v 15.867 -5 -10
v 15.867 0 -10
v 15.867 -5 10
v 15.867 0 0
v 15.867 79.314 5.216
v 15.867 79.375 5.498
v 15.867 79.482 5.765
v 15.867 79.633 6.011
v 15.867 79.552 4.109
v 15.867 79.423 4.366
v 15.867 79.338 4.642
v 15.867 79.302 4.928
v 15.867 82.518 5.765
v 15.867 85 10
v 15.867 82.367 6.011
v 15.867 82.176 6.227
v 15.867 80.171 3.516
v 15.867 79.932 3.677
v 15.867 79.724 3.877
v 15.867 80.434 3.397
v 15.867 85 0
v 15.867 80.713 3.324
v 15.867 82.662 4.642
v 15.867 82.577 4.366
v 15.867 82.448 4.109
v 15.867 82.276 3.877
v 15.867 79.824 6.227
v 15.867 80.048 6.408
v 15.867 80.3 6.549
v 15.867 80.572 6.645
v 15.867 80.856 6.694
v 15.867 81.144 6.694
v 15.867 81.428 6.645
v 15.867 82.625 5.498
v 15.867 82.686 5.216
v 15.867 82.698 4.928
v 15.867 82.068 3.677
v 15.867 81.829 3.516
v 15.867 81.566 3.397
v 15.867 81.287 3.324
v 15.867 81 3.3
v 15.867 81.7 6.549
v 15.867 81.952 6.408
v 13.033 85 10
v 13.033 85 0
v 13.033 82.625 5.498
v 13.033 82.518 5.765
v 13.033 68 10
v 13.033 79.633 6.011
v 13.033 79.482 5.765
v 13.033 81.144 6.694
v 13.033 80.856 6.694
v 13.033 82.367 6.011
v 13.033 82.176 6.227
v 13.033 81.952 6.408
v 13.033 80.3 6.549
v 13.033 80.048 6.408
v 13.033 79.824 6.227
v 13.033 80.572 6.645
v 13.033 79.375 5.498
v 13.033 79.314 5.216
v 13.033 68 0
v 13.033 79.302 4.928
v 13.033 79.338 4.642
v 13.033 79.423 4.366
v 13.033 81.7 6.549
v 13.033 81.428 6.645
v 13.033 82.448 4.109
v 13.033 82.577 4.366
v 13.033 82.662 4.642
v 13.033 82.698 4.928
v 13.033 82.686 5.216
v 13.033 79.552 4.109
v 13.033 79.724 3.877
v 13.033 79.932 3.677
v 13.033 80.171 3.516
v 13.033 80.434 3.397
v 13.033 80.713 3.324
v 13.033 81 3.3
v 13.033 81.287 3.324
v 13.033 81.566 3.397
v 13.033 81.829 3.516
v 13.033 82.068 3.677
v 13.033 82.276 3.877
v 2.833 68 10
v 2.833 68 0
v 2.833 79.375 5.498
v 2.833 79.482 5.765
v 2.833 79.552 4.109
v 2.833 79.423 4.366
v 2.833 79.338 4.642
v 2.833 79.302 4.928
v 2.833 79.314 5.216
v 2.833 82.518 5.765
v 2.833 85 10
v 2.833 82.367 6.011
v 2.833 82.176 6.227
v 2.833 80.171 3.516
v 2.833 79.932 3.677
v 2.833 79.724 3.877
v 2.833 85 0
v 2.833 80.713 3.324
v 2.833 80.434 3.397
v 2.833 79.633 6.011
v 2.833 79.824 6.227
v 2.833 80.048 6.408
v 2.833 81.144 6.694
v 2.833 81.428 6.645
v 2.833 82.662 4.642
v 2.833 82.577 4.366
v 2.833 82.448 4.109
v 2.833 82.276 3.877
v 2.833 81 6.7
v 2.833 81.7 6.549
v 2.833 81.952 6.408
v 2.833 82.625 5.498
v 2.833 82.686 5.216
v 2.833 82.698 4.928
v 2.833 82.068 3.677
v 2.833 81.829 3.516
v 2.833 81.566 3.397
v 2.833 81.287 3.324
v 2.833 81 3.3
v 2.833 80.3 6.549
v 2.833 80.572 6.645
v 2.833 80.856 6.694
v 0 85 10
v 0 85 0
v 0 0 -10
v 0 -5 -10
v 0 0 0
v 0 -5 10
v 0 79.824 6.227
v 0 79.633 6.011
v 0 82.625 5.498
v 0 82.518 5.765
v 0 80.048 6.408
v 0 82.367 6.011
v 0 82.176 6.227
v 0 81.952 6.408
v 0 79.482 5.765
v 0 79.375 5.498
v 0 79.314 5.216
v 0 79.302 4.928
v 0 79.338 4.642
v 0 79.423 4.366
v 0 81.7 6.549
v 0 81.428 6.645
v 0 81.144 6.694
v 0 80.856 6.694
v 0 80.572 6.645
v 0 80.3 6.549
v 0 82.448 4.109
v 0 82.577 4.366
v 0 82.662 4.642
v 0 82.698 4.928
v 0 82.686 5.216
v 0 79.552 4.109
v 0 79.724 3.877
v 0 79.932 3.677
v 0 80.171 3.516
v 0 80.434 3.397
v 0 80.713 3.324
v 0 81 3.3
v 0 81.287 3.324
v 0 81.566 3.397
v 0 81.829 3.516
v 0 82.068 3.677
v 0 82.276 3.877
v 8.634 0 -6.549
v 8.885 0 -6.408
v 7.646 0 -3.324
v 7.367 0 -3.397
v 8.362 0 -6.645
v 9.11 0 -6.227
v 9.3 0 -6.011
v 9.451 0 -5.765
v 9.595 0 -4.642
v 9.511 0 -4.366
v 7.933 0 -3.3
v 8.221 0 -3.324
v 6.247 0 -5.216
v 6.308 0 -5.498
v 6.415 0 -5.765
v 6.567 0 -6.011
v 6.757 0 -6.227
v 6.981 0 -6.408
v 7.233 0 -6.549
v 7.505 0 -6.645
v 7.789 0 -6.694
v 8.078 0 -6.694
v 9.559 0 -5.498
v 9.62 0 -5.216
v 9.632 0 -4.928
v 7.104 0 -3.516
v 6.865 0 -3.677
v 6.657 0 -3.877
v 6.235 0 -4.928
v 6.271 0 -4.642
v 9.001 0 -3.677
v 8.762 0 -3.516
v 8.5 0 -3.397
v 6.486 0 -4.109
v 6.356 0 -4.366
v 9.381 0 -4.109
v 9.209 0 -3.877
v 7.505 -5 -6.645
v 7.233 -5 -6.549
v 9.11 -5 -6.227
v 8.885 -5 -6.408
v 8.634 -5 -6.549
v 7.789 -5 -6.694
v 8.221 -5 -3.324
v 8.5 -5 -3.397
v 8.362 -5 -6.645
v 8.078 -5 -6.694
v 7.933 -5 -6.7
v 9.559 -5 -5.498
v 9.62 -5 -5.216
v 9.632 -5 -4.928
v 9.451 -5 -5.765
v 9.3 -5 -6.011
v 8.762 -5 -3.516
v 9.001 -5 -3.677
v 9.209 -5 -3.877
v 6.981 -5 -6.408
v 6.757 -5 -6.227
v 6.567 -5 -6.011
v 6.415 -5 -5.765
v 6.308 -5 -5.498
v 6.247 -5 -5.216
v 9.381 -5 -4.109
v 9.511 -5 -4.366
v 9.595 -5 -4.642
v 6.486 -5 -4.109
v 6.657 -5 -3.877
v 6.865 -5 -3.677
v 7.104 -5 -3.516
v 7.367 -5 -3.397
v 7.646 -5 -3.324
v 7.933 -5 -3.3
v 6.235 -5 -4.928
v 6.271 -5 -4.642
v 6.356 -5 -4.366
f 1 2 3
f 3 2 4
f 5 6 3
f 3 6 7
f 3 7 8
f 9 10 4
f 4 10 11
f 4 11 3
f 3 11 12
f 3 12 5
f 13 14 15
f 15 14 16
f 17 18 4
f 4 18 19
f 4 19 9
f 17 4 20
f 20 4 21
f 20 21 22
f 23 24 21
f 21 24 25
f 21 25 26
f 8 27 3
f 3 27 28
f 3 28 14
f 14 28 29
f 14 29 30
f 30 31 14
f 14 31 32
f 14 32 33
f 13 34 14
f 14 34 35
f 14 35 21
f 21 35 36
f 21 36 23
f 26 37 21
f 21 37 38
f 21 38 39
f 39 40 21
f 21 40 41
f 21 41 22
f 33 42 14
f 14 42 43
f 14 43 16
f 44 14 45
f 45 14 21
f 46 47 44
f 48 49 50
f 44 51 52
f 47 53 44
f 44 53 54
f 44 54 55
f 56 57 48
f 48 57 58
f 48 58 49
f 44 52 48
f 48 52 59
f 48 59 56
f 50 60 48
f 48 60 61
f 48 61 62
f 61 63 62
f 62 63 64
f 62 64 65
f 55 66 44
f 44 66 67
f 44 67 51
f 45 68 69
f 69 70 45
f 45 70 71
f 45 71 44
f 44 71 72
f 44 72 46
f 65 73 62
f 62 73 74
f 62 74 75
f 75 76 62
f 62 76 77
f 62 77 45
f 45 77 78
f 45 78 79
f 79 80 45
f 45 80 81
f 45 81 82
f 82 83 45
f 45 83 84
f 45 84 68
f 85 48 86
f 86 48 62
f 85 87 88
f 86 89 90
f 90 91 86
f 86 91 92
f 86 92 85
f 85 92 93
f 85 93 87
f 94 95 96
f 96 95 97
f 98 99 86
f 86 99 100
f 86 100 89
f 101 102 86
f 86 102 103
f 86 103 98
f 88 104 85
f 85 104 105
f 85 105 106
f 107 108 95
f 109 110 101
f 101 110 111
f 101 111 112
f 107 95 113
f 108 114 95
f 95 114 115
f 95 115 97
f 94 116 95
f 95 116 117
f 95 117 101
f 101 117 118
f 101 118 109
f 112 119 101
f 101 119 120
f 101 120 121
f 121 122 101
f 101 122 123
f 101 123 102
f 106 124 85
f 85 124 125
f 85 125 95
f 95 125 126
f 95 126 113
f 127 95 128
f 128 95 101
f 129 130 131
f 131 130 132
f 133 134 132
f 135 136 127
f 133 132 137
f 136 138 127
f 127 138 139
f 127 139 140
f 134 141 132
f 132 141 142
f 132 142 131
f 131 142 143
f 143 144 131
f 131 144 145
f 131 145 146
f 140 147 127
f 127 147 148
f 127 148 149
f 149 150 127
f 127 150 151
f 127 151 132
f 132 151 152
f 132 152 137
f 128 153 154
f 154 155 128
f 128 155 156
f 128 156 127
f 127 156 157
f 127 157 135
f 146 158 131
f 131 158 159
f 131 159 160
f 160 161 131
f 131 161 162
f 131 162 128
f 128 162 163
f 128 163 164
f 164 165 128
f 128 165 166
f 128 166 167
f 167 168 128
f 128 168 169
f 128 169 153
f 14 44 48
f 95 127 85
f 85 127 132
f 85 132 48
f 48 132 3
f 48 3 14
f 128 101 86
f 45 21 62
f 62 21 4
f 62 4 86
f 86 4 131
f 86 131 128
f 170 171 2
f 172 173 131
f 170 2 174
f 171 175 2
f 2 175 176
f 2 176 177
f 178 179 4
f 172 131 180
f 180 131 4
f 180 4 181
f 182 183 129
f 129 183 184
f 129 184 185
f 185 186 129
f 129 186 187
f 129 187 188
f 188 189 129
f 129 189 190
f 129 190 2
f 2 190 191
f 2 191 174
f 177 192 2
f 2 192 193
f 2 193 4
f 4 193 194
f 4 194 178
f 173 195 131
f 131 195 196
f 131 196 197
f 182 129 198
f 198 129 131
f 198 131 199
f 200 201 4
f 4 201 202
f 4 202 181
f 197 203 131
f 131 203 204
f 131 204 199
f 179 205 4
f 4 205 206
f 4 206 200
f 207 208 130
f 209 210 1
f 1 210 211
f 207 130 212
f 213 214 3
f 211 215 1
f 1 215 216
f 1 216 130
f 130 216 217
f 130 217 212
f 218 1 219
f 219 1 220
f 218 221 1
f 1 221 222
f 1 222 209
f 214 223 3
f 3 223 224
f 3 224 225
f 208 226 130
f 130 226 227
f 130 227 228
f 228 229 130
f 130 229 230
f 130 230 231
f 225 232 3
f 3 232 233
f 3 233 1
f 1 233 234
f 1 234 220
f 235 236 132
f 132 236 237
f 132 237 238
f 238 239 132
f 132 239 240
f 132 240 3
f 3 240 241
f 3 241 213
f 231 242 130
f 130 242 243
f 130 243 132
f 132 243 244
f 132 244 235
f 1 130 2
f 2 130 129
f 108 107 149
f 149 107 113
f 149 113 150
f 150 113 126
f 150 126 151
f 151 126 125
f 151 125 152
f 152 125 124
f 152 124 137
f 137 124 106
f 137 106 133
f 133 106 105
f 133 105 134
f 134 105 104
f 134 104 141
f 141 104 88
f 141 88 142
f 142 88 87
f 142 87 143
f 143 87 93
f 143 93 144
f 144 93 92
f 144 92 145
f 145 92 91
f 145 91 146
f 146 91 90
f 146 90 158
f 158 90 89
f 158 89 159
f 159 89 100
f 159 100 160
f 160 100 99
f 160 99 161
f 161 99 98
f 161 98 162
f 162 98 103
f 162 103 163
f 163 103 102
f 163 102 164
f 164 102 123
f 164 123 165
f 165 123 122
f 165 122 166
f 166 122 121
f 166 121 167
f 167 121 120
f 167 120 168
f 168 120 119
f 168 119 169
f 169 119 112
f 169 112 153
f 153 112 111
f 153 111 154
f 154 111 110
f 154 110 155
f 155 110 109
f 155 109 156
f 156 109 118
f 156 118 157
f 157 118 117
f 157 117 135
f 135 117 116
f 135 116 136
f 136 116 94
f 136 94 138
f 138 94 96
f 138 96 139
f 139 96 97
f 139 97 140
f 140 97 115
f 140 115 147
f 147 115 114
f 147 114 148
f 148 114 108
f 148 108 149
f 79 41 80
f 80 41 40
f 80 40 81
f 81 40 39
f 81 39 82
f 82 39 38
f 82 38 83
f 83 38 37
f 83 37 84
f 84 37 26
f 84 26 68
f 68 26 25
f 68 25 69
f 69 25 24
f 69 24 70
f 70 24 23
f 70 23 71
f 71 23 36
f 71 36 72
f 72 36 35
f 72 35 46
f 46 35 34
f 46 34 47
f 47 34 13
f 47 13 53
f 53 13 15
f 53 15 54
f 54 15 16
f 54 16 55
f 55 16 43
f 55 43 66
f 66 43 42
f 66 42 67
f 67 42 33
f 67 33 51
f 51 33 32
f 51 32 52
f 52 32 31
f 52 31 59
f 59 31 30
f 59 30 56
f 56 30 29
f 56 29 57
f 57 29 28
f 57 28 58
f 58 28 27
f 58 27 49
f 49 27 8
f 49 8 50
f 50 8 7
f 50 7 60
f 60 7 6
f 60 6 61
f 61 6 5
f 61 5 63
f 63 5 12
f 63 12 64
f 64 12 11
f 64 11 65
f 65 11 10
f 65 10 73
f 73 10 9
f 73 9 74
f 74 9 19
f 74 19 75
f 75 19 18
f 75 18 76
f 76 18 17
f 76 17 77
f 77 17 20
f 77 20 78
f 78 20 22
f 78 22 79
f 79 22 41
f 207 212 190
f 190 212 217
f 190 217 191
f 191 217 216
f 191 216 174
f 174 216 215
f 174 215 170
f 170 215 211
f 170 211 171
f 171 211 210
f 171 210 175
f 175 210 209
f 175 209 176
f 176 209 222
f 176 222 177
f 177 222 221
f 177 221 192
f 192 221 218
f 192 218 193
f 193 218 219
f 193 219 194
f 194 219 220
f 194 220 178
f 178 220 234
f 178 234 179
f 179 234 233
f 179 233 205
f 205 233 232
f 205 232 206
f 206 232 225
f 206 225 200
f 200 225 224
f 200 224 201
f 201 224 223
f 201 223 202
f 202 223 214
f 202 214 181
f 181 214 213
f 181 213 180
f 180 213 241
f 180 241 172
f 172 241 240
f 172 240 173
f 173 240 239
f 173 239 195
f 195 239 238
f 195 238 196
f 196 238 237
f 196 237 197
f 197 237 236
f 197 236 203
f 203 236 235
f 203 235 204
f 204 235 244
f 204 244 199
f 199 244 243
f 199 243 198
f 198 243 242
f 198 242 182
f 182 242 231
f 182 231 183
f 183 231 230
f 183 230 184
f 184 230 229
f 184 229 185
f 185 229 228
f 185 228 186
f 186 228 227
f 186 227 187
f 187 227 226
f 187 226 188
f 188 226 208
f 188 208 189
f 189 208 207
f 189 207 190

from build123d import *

# Parameters (mm, degrees)
Y_KSEKLIK_EKSTR_ZYON1_DEPTH      = 10
Y_KSEKLIK_EKSTR_ZYON2_DEPTH      = 10
Y_KSEKLIK_EKSTR_ZYON2_DEPTH_BACK = 10
IZIM3_W                          = 15.866666667
IZIM3_H                          = 5
IZIM5_R                          = 1.7
KES_EKSTR_ZYON1_DEPTH            = 36
IZIM9_R                          = 1.7
KES_EKSTR_ZYON2_DEPTH            = 36


with BuildPart() as part:
    # Çizim2 → Yükseklik-Ekstrüzyon1 (new body)
    with BuildSketch(Plane.XY):
        Polygon((0, 0), (0, 79.333333333), (0, 85), (2.833333333, 85), (2.833333333, 68), (13.033333333, 68), (13.033333333, 85), (15.866666667, 85), (15.866666667, 79.333333333), (15.866666667, 0), align=None)
    extrude(amount=Y_KSEKLIK_EKSTR_ZYON1_DEPTH)

    # Çizim3 → Yükseklik-Ekstrüzyon2 (add, two sides: drawn at the far end of the back side and taken through both)
    with BuildSketch(Plane(origin=(0, 0, 0), x_dir=(-1, 0, 0), z_dir=(0, 0, -1)).offset(-Y_KSEKLIK_EKSTR_ZYON2_DEPTH_BACK)):
        with Locations((-7.933333334, -2.5)):
            Rectangle(IZIM3_W, IZIM3_H)
    extrude(amount=Y_KSEKLIK_EKSTR_ZYON2_DEPTH + Y_KSEKLIK_EKSTR_ZYON2_DEPTH_BACK)

    # Çizim5 → Kes-Ekstrüzyon1 (cut)
    with BuildSketch(Plane(origin=(15.866666667, 0, 0), x_dir=(0, 0, -1), z_dir=(1, 0, 0))):
        with Locations((-5, 81)):
            Circle(IZIM5_R)
    extrude(amount=-KES_EKSTR_ZYON1_DEPTH, mode=Mode.SUBTRACT)

    # Çizim9 → Kes-Ekstrüzyon2 (cut)
    with BuildSketch(Plane(origin=(0, 0, 0), x_dir=(1, 0, 0), z_dir=(0, 1, 0))):
        with Locations(Location((7.933333333, 5, 0), (0, 0, 270))):
            Circle(IZIM9_R)
    extrude(amount=-KES_EKSTR_ZYON2_DEPTH, mode=Mode.SUBTRACT)


solid = part.part
